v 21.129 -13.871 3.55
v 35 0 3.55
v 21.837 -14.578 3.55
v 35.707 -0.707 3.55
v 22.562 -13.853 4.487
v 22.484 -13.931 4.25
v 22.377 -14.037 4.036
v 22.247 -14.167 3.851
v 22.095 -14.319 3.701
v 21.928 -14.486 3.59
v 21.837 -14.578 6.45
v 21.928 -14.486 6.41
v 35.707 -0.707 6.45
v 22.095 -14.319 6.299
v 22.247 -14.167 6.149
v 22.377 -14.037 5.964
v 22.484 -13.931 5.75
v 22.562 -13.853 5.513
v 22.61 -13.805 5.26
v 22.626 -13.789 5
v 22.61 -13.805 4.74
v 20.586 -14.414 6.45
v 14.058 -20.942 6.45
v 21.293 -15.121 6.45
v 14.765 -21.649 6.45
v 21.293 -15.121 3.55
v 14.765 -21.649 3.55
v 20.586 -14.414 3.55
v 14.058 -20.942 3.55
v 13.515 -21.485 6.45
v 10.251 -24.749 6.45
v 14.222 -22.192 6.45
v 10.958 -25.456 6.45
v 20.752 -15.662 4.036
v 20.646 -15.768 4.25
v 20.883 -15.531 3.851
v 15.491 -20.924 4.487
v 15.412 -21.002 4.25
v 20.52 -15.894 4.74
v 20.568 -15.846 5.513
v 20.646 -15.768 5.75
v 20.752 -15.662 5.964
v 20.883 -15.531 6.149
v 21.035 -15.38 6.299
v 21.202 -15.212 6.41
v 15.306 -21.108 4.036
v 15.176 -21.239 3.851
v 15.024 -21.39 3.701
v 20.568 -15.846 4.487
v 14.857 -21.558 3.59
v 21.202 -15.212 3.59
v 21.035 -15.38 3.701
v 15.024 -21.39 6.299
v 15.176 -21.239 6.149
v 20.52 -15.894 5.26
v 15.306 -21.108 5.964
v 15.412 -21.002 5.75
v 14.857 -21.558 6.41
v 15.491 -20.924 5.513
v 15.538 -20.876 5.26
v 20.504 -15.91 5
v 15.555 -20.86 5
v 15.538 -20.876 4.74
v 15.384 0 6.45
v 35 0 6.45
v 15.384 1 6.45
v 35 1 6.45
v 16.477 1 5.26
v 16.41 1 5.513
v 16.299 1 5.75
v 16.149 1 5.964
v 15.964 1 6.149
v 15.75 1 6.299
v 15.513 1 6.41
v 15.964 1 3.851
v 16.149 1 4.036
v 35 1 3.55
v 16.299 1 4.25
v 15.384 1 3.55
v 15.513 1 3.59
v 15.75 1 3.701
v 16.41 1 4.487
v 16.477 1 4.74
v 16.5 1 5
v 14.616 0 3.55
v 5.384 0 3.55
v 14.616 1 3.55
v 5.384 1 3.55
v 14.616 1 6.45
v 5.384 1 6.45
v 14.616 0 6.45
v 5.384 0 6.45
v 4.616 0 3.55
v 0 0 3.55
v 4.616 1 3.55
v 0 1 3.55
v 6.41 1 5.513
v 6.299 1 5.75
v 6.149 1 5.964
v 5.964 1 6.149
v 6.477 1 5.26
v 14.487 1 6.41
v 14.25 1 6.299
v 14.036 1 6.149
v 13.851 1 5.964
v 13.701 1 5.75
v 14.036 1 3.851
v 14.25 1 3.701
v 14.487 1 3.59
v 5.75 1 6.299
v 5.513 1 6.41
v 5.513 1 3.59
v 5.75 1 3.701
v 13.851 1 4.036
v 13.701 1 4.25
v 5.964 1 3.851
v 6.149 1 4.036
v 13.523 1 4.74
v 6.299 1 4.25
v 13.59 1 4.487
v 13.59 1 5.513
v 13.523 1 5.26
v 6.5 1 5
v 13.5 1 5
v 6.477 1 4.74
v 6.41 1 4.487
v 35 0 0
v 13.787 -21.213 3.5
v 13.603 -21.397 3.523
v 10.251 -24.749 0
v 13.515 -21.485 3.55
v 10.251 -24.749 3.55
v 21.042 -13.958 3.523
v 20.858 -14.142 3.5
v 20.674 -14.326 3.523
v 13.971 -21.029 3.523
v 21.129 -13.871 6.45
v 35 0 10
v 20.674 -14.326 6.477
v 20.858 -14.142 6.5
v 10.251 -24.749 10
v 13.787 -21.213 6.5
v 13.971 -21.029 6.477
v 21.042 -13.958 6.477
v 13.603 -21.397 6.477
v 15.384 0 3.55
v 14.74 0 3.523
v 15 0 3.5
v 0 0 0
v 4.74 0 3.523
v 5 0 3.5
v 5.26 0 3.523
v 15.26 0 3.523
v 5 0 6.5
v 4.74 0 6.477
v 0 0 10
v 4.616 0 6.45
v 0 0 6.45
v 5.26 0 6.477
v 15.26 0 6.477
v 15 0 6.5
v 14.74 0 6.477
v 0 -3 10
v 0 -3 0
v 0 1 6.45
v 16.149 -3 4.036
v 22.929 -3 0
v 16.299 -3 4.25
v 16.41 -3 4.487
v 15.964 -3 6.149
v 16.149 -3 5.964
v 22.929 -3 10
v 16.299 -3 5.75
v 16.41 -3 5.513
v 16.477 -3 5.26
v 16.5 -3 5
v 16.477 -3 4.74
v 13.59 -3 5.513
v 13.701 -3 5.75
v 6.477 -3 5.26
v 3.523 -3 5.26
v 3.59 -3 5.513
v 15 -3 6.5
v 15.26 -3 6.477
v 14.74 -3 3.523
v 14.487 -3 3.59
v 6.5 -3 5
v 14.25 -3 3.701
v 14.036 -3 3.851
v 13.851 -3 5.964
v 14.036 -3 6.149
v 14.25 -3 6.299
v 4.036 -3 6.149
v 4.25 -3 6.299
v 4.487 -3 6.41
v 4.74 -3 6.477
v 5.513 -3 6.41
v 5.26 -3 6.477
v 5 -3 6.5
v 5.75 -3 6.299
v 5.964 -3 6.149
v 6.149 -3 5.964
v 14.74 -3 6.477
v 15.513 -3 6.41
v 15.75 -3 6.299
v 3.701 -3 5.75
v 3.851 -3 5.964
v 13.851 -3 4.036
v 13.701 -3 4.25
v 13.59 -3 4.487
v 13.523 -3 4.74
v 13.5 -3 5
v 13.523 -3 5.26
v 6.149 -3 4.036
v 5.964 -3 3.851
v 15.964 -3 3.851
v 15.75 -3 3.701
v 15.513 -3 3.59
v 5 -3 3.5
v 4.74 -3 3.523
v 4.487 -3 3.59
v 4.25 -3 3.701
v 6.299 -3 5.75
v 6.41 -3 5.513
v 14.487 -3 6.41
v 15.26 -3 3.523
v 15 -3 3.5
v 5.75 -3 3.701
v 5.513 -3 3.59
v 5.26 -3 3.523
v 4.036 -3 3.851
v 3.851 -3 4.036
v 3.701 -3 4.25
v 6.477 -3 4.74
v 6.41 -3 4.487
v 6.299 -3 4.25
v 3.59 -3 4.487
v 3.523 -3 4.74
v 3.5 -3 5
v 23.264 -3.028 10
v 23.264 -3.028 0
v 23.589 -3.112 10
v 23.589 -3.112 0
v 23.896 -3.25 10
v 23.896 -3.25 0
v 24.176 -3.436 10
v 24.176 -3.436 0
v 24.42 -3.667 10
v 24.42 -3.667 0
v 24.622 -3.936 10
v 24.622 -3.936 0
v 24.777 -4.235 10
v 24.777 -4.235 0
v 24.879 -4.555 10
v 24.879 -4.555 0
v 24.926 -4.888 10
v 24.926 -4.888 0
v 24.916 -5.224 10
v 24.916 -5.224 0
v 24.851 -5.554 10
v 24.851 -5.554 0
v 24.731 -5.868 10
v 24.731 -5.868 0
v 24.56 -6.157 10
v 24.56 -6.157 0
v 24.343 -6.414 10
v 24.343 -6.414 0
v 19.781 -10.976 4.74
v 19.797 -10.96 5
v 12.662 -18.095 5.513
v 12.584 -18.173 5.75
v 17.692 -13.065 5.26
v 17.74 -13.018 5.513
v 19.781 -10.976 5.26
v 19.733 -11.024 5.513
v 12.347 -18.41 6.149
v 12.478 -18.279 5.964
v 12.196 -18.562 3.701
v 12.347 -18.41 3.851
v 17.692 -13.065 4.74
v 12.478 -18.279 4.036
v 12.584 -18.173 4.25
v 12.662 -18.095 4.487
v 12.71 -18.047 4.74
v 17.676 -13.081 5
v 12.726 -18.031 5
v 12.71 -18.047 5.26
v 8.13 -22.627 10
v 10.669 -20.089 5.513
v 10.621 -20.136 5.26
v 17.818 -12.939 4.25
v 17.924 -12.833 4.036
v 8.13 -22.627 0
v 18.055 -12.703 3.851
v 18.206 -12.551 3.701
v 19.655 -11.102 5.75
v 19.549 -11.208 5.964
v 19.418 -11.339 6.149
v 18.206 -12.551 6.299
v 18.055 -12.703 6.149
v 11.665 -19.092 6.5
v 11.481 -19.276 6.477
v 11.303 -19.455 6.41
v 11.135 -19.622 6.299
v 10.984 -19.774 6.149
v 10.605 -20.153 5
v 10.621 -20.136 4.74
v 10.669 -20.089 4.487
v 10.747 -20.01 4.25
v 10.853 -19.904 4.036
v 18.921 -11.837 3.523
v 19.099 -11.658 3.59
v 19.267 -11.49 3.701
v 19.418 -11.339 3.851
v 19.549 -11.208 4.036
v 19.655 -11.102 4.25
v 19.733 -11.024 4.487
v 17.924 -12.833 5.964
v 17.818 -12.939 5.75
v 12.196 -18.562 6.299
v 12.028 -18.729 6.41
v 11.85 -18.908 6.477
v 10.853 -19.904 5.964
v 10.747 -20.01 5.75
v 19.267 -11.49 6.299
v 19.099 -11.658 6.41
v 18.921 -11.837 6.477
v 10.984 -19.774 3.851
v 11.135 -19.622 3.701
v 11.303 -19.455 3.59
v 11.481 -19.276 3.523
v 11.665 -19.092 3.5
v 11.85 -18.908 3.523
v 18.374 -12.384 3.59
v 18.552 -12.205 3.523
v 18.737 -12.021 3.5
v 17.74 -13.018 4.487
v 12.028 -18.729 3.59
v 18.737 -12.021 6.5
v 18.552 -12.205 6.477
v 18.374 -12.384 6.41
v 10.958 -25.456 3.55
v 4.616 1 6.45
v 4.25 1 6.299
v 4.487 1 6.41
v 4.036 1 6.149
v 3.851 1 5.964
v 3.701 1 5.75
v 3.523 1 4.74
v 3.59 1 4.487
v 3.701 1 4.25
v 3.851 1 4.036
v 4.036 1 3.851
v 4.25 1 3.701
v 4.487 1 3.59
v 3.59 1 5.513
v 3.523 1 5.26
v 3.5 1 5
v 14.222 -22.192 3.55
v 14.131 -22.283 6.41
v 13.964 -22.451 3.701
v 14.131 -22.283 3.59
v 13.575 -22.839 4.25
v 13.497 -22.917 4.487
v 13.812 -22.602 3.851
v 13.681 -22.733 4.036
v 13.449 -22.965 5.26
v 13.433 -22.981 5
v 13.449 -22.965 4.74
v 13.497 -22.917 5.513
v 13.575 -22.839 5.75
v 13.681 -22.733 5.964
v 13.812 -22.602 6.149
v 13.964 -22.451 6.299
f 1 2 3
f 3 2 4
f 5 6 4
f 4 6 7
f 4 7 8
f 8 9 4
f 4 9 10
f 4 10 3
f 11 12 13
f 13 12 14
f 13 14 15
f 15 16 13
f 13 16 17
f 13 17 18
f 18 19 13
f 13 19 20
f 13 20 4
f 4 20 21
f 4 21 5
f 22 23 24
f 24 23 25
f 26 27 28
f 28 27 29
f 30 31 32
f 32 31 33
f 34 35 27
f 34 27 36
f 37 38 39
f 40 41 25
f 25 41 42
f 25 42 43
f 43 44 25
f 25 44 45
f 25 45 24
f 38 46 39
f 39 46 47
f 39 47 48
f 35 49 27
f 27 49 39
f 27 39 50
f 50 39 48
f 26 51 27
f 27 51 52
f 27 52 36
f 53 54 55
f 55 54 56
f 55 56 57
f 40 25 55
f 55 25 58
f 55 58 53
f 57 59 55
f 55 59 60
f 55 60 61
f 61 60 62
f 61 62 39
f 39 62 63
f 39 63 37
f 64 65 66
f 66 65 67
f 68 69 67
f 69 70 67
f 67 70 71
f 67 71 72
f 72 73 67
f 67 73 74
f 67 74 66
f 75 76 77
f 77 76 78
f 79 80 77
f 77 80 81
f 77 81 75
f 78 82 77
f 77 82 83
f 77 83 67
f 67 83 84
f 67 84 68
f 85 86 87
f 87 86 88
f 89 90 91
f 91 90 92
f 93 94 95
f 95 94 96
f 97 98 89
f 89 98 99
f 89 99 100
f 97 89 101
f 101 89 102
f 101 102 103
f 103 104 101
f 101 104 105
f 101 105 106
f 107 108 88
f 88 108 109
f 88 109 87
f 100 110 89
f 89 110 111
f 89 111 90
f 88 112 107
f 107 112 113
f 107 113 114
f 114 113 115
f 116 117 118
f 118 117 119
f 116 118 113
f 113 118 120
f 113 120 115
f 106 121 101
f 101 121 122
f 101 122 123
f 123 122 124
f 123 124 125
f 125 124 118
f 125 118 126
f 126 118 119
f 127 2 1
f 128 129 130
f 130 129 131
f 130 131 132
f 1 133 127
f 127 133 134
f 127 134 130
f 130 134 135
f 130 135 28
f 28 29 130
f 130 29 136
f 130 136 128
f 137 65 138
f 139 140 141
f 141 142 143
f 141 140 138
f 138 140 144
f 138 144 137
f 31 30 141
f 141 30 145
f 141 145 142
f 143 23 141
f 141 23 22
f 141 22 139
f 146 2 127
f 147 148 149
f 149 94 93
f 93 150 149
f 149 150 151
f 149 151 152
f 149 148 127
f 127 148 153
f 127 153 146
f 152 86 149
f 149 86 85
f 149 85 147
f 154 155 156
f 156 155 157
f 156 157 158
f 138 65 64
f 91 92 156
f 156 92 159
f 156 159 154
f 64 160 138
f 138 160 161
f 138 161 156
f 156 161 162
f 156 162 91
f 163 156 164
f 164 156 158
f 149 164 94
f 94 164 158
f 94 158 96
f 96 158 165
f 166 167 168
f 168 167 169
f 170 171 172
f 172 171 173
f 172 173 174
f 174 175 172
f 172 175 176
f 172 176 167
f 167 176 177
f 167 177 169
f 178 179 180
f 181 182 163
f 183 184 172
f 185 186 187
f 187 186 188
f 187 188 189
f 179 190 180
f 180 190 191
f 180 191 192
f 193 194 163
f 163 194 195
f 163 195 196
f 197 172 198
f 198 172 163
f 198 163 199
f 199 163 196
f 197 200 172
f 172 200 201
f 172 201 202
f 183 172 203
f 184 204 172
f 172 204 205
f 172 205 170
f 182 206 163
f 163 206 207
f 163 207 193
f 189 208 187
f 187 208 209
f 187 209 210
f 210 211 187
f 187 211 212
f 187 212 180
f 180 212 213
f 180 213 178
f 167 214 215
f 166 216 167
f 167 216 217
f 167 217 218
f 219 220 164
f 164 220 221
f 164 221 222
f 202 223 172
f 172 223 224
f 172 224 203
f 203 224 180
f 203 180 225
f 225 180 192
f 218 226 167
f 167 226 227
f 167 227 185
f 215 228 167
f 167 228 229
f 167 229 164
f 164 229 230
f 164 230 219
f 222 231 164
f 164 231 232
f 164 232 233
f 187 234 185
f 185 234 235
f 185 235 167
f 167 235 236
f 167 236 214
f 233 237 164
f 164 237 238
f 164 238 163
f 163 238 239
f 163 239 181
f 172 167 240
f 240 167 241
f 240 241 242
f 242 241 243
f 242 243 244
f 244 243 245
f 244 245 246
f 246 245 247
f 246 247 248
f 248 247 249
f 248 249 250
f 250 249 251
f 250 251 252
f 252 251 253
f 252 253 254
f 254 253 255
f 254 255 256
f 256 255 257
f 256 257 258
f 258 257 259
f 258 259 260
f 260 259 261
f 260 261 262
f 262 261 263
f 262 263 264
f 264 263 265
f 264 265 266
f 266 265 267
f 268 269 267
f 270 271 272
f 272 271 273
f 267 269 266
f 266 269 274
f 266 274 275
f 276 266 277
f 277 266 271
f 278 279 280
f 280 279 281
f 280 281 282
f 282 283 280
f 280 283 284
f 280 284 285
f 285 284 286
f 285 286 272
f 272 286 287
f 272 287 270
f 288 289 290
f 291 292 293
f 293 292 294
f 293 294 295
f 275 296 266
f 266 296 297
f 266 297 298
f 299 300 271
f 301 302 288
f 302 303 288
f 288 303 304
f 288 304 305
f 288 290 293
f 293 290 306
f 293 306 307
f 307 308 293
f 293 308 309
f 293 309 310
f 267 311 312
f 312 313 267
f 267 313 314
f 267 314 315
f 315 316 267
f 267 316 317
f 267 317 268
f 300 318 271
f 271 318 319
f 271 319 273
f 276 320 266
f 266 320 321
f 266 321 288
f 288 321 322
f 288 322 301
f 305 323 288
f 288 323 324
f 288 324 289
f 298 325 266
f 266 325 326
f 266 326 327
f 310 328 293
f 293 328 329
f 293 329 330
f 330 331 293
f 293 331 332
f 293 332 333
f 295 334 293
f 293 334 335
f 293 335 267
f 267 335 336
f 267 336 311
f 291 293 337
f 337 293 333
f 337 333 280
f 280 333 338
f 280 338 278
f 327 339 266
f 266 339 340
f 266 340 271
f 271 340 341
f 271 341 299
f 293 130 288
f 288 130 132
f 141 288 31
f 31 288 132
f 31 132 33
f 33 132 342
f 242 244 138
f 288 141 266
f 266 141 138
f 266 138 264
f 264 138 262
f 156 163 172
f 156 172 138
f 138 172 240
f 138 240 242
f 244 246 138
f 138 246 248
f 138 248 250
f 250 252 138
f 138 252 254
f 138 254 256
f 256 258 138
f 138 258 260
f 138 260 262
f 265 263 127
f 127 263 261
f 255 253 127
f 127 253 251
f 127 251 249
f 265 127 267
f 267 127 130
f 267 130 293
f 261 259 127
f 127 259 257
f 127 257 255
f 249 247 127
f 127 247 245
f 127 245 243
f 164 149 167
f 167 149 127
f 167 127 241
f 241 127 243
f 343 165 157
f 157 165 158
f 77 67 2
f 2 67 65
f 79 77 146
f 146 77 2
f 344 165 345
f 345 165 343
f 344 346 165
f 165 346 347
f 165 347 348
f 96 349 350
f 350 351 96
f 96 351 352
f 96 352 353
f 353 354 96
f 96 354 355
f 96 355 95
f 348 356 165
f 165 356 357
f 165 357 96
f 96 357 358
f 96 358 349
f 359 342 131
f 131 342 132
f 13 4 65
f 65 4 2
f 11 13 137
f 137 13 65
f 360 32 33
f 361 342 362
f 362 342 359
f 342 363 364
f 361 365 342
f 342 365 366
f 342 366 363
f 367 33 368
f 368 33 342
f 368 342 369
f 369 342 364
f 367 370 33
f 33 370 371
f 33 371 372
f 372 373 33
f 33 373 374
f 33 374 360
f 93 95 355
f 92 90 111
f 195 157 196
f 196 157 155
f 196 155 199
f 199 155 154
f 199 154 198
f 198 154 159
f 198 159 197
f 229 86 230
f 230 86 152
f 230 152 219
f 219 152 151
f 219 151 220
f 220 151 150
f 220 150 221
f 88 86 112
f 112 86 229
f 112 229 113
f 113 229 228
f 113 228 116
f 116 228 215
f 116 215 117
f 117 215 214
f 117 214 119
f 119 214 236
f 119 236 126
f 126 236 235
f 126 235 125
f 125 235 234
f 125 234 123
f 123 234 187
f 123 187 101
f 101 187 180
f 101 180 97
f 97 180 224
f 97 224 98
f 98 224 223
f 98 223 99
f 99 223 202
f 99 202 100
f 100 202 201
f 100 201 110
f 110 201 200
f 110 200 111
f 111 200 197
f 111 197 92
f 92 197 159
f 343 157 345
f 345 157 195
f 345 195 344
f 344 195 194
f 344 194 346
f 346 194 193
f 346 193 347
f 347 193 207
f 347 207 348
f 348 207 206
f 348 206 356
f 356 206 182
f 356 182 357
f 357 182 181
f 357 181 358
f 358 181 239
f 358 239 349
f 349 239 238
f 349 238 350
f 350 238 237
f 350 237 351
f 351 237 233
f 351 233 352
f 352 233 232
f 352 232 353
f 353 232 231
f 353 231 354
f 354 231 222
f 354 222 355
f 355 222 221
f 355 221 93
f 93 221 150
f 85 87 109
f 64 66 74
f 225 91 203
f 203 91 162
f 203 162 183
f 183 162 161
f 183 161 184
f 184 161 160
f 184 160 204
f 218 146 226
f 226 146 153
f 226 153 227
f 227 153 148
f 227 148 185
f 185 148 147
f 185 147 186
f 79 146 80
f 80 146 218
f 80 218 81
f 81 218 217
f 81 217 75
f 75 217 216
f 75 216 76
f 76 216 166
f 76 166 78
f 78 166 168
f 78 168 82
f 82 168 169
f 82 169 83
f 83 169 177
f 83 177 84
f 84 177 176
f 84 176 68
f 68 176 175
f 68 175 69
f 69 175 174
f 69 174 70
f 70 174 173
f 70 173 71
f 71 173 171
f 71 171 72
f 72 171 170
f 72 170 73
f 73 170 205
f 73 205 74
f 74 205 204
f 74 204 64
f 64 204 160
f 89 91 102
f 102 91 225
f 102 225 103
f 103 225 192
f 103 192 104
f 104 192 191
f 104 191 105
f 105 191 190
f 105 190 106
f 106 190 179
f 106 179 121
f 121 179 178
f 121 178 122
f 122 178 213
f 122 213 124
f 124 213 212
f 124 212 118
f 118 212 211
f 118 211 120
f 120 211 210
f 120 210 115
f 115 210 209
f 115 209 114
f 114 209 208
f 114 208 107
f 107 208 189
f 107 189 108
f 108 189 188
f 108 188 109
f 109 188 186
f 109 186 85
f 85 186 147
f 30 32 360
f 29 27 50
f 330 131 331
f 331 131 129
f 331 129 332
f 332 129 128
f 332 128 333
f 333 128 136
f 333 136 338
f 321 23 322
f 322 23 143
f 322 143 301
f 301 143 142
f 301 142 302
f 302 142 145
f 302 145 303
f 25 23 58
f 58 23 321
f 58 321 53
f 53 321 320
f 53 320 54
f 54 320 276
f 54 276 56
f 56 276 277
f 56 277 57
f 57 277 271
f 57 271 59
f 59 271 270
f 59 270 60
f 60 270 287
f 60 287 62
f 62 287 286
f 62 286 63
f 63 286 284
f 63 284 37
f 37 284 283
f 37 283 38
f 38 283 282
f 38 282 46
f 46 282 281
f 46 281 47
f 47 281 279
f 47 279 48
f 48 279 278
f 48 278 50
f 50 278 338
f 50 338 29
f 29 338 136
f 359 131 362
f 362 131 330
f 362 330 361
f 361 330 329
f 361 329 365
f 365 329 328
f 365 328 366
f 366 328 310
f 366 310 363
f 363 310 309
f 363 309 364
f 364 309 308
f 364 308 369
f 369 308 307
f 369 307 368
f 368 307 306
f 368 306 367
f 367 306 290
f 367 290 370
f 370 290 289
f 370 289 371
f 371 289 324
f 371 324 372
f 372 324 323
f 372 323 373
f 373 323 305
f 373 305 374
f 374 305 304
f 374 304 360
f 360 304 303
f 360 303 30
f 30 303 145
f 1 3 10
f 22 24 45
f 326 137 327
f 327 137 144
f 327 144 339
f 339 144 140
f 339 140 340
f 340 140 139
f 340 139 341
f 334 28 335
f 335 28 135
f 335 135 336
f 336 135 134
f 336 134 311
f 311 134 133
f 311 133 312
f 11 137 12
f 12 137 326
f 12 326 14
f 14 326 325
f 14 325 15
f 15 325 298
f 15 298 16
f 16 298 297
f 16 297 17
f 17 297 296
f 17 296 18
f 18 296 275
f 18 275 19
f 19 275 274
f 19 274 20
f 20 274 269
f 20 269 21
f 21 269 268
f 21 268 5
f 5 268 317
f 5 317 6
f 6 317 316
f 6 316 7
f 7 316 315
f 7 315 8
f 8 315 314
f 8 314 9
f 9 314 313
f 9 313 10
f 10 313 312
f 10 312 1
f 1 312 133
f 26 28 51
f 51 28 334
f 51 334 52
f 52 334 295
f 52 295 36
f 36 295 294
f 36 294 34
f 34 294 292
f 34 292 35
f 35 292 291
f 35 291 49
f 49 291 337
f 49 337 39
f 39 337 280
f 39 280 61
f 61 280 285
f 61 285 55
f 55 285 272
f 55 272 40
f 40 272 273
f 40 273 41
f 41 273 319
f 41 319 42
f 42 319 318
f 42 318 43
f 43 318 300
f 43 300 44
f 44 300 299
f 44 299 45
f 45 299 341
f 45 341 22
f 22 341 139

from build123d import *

# Parameters (mm, degrees)
BOSS_EXTRU_1_DEPTH      = 10
ESQUISSE2_W             = 35
ESQUISSE2_H             = 2.9
BOSS_EXTRU_2_DEPTH      = 1
ESQUISSE3_W             = 35
ESQUISSE3_H             = 2.9
BOSS_EXTRU_3_DEPTH      = 1
ESQUISSE4_R             = 1.5
ENL_V_MAT_EXTRU_1_DEPTH = 5
ESQUISSE5_R             = 1.5
ENL_V_MAT_EXTRU_2_DEPTH = 22.5


with BuildPart() as part:
    # Esquisse1 → Boss.-Extru.1 (new body)
    with BuildSketch(Plane.XY):
        with BuildLine():
            Line((0, 0), (35, 0))
            Line((35, 0), (10.251262658, -24.748737342))
            Line((10.251262658, -24.748737342), (8.129942315, -22.627416998))
            Line((8.129942315, -22.627416998), (24.343145751, -6.414213562))
            ThreePointArc((24.343145751, -6.414213562), (24.776691253, -4.234633135), (22.928932188, -3))
            Line((22.928932188, -3), (0, -3))
            Line((0, -3), (0, 0))
        make_face()
    extrude(amount=BOSS_EXTRU_1_DEPTH)

    # Esquisse2 → Boss.-Extru.2 (add)
    with BuildSketch(Plane(origin=(0, 0, 0), x_dir=(1, 0, 0), z_dir=(0, 1, 0))):
        with Locations((17.5, -5)):
            Rectangle(ESQUISSE2_W, ESQUISSE2_H)
    extrude(amount=BOSS_EXTRU_2_DEPTH)

    # Esquisse3 → Boss.-Extru.3 (add)
    with BuildSketch(Plane(origin=(17.5, -17.5, 0), x_dir=(0.707106781, 0.707106781, 0), z_dir=(0.707106781, -0.707106781, 0))):
        with Locations((7.248737342, 5)):
            Rectangle(ESQUISSE3_W, ESQUISSE3_H)
    extrude(amount=BOSS_EXTRU_3_DEPTH)

    # Esquisse4 → Enlèv. mat.-Extru.1 (cut, through all)
    with BuildSketch(Plane.XZ.offset(3)):
        with Locations((5, 5)):
            Circle(ESQUISSE4_R)
        with Locations((15, 5)):
            Circle(ESQUISSE4_R)
    extrude(amount=-ENL_V_MAT_EXTRU_1_DEPTH, mode=Mode.SUBTRACT)

    # Esquisse5 → Enlèv. mat.-Extru.2 (cut, through all)
    with BuildSketch(Plane(origin=(15.378679656, -15.378679656, 0), x_dir=(0.707106781, 0.707106781, 0), z_dir=(-0.707106781, 0.707106781, 0))):
        with Locations((-5.251262658, -5)):
            Circle(ESQUISSE5_R)
        with Locations((4.748737342, -5)):
            Circle(ESQUISSE5_R)
    extrude(amount=-ENL_V_MAT_EXTRU_2_DEPTH, mode=Mode.SUBTRACT)


solid = part.part
